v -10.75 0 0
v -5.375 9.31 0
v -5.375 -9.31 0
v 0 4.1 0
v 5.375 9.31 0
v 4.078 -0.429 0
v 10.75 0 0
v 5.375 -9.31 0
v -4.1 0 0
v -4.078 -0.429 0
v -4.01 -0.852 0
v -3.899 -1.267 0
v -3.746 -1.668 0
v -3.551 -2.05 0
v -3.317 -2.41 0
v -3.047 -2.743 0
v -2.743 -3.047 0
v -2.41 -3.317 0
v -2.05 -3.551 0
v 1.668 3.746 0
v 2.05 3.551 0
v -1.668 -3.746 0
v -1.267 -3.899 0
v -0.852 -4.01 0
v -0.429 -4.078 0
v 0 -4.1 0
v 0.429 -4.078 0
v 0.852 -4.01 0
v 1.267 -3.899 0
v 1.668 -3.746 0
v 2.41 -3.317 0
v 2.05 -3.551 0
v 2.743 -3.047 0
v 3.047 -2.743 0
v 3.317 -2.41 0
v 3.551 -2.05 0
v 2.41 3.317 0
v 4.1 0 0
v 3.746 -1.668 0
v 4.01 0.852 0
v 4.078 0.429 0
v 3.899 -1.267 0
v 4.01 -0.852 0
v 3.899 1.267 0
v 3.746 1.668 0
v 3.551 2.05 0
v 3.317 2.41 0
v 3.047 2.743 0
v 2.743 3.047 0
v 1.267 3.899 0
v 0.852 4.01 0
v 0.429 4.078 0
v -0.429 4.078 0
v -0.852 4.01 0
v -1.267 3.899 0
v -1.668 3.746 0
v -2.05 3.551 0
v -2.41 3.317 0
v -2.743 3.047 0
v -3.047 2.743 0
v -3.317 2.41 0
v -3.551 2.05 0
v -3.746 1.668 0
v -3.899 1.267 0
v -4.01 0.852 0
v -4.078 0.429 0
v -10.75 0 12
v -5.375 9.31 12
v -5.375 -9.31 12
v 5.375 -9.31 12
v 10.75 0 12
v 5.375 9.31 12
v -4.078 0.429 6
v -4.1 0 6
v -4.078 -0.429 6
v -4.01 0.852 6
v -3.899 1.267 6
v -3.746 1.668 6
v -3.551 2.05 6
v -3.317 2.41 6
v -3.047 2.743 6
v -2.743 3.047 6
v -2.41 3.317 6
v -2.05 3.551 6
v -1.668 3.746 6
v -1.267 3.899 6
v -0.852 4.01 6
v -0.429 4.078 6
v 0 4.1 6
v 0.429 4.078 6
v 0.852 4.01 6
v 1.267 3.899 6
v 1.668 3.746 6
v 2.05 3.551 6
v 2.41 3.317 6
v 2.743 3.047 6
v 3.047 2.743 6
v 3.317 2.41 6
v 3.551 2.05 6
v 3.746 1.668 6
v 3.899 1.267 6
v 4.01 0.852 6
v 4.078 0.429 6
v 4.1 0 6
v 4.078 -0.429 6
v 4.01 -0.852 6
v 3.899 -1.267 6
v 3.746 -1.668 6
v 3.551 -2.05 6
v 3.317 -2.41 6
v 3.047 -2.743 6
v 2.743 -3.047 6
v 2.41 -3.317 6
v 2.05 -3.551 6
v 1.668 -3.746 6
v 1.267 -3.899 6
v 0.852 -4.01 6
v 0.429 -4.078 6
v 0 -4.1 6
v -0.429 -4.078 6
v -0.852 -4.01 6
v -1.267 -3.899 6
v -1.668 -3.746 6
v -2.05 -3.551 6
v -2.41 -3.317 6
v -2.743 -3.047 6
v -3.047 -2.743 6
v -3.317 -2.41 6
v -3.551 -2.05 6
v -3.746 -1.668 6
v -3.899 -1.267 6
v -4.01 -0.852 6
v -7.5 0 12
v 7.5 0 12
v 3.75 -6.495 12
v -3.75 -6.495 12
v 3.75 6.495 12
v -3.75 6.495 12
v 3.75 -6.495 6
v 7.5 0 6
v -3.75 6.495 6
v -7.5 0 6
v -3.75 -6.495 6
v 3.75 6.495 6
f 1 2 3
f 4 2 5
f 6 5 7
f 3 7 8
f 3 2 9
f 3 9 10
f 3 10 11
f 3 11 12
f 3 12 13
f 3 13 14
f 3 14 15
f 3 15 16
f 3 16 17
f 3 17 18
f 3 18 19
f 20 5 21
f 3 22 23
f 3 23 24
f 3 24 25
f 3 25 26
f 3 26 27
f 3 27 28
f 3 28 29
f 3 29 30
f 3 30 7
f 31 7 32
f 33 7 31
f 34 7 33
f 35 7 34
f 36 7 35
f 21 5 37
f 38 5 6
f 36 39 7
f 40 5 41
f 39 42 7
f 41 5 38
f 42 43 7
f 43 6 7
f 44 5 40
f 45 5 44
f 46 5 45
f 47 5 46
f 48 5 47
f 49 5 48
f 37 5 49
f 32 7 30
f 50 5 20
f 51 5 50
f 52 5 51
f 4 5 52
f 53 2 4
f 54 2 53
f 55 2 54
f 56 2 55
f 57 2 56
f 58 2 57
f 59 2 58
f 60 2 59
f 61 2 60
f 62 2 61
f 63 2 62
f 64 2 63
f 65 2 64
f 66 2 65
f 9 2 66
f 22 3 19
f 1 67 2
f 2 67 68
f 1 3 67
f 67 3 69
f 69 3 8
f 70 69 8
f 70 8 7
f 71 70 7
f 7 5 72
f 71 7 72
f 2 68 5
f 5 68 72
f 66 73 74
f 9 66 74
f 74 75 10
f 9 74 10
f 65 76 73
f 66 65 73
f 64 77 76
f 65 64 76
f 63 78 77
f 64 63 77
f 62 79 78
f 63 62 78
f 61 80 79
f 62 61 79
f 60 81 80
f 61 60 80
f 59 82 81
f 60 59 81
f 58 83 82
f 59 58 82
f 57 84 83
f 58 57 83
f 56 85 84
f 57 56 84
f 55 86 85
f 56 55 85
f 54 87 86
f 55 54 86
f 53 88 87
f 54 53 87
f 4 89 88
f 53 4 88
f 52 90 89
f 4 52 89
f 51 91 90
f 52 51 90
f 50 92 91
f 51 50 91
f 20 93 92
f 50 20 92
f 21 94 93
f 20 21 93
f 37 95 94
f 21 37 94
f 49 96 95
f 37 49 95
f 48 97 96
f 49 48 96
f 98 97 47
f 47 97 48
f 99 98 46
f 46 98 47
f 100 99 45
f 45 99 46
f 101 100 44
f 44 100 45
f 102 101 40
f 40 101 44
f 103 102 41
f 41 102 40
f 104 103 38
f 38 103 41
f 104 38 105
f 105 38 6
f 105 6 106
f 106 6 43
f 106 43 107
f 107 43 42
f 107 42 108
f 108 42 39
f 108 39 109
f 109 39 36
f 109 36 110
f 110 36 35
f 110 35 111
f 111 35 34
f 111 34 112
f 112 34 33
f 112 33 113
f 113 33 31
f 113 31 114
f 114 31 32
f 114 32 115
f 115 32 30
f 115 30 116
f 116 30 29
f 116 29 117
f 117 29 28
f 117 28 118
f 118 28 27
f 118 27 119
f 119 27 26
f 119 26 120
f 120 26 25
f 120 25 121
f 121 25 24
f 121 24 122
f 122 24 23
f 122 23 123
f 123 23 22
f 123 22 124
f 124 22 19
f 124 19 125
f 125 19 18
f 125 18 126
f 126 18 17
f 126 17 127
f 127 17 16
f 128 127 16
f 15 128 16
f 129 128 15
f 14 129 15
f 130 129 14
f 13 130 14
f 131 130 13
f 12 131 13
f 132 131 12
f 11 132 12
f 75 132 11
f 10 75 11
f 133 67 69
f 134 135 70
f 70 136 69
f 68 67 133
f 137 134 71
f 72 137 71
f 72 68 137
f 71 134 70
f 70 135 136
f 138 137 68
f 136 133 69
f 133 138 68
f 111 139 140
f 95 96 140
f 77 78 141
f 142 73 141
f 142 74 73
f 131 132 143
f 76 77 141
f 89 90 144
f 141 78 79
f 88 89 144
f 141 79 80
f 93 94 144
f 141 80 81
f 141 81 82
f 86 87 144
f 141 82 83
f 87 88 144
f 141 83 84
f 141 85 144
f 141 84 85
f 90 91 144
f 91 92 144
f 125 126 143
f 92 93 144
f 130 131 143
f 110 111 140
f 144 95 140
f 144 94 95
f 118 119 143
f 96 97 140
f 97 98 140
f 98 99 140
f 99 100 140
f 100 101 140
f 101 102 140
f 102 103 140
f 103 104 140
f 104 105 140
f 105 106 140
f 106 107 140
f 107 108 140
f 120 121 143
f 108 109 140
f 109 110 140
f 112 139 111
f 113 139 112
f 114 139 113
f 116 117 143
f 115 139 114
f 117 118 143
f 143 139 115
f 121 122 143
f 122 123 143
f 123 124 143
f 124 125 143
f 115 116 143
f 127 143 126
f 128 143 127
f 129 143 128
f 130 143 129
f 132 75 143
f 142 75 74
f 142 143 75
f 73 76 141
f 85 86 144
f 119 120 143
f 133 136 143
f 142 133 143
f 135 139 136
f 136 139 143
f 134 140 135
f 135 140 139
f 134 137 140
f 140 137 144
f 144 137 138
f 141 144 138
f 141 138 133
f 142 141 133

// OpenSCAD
drive_nut();

module drive_nut(){

	rod_radius = 4;

	nut_length = 12;

	// printed and was press fit
	//nut_radius = 11.25;  // hole is 11.5 r


	nut_radius = 10.75;  // hole is 11.5 r

	m8_nut_length = 6;
	m8_nut_radius = 15 / 2;

	difference(){


		translate([0, 0, 0])
			cylinder(r=nut_radius, h=nut_length, $fn=6);

		translate([0, 0, nut_length - m8_nut_length])
			cylinder(r=m8_nut_radius, h=nut_length, $fn=6);
	
		translate([0, 0, -1])
			cylinder(r=rod_radius + 0.1, h=nut_length+2, $fn=60);

	}

}
